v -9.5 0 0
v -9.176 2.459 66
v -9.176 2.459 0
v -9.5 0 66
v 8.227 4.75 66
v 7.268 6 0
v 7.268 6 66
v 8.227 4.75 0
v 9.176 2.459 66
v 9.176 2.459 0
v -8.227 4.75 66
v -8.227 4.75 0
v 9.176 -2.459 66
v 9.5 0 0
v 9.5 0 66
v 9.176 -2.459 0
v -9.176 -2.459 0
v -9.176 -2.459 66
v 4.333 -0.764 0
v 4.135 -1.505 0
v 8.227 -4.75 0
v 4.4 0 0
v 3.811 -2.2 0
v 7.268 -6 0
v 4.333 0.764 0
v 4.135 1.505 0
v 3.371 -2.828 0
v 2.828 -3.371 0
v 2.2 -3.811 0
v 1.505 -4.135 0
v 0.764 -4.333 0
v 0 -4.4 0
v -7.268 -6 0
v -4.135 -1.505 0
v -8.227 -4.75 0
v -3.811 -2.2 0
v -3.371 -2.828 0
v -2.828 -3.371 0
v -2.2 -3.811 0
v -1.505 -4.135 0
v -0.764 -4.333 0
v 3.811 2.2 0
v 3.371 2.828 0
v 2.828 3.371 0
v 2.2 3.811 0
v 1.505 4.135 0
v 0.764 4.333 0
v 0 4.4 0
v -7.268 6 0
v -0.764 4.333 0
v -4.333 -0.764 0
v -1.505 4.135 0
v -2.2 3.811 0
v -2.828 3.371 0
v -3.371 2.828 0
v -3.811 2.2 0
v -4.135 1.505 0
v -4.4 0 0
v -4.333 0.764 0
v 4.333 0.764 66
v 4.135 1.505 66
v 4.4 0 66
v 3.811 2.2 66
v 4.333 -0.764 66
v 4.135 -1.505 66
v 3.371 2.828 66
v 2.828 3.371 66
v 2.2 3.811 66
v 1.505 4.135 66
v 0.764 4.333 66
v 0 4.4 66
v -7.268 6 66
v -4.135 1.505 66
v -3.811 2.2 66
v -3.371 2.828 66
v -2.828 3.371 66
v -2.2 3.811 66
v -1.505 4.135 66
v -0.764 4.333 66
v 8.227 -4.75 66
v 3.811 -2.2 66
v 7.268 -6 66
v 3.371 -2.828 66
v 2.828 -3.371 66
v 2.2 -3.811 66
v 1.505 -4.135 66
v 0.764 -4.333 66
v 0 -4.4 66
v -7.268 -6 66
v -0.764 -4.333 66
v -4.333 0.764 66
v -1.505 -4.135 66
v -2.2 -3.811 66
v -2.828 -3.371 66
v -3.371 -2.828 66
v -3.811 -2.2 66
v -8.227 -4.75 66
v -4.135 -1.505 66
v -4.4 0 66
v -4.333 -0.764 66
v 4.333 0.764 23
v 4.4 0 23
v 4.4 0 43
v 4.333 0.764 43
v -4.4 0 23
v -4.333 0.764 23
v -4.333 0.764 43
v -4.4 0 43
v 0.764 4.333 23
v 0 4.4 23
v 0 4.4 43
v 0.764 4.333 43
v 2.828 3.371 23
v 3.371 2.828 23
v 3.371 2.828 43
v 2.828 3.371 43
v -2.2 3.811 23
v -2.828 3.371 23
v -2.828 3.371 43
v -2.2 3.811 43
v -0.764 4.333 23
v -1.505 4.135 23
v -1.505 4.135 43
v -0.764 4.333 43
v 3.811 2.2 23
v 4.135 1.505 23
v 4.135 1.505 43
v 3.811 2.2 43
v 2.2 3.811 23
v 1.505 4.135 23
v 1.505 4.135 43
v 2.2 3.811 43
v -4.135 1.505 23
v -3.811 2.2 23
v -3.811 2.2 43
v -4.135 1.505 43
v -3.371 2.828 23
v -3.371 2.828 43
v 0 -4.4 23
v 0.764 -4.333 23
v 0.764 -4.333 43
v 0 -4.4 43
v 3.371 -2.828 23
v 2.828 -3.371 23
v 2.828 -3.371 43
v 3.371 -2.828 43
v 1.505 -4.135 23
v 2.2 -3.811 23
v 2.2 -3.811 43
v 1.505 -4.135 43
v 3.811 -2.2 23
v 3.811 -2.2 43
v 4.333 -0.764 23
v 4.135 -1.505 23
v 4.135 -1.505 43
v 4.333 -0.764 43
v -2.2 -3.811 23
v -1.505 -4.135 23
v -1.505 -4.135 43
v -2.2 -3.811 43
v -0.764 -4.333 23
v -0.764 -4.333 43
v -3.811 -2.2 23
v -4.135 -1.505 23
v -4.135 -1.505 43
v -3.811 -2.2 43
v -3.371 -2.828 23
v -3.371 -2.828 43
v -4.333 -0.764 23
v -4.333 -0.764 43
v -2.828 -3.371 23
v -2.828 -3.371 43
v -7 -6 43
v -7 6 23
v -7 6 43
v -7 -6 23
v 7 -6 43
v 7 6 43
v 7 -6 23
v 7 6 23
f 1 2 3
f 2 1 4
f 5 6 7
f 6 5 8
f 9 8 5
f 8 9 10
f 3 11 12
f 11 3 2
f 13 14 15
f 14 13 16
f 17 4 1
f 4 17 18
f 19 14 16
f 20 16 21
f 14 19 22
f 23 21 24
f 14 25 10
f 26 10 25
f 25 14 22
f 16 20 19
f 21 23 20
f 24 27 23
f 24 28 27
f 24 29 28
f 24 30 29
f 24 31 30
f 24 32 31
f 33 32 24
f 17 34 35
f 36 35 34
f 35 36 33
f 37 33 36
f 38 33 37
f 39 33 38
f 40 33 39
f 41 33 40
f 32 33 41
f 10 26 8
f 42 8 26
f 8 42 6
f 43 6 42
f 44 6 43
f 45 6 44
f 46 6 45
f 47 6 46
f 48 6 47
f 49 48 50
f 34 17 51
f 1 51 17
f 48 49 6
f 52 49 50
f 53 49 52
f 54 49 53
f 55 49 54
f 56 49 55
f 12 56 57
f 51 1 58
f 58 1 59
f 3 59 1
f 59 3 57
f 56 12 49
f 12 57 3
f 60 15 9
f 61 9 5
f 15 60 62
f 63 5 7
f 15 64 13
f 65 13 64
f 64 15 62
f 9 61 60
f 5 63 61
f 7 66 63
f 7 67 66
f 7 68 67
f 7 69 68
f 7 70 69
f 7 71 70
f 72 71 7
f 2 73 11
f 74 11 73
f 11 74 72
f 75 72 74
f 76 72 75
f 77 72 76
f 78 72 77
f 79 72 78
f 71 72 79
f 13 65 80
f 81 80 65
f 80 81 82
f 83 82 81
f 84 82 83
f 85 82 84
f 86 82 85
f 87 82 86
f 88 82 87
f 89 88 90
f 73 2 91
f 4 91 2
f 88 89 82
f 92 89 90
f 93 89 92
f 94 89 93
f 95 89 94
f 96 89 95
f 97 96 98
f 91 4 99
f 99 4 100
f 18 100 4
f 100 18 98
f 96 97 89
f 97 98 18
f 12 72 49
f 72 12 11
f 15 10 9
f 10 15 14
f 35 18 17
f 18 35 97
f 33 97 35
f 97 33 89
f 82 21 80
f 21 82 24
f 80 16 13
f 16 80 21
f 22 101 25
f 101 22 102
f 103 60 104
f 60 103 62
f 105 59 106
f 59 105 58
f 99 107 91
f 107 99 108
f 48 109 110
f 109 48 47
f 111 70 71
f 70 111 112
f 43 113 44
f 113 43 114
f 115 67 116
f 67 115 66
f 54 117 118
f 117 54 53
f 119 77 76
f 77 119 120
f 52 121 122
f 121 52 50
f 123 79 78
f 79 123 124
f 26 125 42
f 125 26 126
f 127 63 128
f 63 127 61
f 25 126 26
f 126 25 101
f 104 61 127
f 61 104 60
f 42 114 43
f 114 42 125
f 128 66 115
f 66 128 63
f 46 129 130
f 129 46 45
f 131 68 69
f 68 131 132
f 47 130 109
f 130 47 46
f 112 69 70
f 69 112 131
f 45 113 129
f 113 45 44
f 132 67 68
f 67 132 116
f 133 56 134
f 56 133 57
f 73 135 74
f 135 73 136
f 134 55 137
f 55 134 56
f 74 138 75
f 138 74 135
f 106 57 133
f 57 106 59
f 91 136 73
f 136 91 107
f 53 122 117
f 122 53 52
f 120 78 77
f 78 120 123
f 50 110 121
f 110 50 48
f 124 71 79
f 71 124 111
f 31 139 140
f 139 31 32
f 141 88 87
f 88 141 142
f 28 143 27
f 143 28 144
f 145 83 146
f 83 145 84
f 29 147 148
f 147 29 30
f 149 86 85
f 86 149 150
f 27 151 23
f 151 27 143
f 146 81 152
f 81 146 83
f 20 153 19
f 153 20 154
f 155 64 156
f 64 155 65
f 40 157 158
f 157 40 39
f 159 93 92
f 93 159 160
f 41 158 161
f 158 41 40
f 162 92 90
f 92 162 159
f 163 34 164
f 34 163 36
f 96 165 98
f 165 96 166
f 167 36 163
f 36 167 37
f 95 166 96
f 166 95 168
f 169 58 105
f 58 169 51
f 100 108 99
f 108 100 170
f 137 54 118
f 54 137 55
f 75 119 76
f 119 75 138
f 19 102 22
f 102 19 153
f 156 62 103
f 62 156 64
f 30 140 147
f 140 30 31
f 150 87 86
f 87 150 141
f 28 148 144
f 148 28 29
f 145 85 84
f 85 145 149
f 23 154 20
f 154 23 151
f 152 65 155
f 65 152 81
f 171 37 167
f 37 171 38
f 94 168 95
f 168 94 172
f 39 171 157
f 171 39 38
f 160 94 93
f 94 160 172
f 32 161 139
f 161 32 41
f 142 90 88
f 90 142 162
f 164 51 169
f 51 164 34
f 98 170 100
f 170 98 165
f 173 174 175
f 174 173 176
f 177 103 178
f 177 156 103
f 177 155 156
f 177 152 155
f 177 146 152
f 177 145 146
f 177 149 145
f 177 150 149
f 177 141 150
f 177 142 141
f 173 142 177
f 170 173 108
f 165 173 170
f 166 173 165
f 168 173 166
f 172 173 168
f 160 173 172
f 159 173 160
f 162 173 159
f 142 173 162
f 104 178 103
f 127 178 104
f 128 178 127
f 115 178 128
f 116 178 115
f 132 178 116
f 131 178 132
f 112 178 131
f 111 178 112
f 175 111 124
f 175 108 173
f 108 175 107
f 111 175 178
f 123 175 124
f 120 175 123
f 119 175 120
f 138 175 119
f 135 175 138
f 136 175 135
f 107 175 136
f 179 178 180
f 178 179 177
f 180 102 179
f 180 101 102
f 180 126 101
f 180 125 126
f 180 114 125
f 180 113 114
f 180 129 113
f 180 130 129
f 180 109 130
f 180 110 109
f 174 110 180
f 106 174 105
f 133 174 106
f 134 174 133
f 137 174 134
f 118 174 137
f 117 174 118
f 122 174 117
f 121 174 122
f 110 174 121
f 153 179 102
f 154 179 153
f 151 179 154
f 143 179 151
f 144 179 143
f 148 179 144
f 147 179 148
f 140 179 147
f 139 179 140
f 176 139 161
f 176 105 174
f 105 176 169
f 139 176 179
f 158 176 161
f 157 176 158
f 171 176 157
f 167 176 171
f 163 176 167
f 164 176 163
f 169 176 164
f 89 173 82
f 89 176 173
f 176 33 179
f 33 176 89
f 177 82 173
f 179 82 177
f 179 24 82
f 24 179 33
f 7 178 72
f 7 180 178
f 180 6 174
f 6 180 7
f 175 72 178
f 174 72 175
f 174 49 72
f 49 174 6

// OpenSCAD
difference(){
    cylinder(66,9.5,9.5,$fn=24);
    translate([0,0,-1])
        cylinder(72,4.4,4.4,$fn=36);
    translate([-7,-10, 23])
        cube([14,20,20]);
    translate([-10,-26, -1])
        cube([20,20,72]);
    translate([-10,6, -1])
        cube([20,20,72]);
    
}
